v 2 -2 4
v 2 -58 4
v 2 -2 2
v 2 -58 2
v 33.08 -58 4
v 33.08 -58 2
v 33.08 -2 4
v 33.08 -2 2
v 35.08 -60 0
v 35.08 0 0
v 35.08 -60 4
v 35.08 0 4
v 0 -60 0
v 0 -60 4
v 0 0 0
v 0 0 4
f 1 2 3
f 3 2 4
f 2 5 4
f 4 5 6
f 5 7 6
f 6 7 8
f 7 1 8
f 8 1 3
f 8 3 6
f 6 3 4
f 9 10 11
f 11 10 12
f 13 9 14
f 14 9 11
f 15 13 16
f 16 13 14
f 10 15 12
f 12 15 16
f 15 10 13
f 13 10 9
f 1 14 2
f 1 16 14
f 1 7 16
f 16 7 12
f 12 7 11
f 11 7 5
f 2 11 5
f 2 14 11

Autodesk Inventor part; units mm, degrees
ref_plane "YZ Plane" through (0, 0, 0) normal (1, 0, 0) x (0, 1, 0)
ref_plane "XZ Plane" through (0, 0, 0) normal (0, 1, 0) x (-1, 0, 0)
ref_plane "XY Plane" through (0, 0, 0) normal (0, 0, 1) x (1, 0, 0)
sketch "Sketch1" plane through (0, 0, 0) normal (0, 0, 1) x (1, 0, 0)
  line L0 (0, 0) -> (35.08, 0)
  line L1 (35.08, 0) -> (35.08, -60)
  line L2 (35.08, -60) -> (0, -60)
  line L3 (0, -60) -> (0, 0)
  dimension "d0" = 35.08
  dimension "d1" = 60
extrude "Extrusion1" add sketch "Sketch1" along normal blind 4
sketch "Sketch2" plane through (0, 0, 4) normal (0, 0, 1) x (1, 0, 0)
  line L0 (35.08, 0) -> (0, 0) projected
  line L1 (2, -2) -> (33.08, -2)
  line L2 (33.08, -2) -> (33.08, -58)
  line L3 (33.08, -58) -> (2, -58)
  line L4 (2, -58) -> (2, -2)
  line L5 (0, -60) -> (35.08, -60) projected
  line L6 (35.08, -60) -> (35.08, 0) projected
  line L7 (0, 0) -> (0, -60) projected
  dimension "d8" = 2
  dimension "d9" = 2
  dimension "d10" = 2
  dimension "d11" = 2
extrude "Extrusion2" cut sketch "Sketch2" against normal blind 2 contours L1 L2 L3 L4
properties part number "tapaBateria"
